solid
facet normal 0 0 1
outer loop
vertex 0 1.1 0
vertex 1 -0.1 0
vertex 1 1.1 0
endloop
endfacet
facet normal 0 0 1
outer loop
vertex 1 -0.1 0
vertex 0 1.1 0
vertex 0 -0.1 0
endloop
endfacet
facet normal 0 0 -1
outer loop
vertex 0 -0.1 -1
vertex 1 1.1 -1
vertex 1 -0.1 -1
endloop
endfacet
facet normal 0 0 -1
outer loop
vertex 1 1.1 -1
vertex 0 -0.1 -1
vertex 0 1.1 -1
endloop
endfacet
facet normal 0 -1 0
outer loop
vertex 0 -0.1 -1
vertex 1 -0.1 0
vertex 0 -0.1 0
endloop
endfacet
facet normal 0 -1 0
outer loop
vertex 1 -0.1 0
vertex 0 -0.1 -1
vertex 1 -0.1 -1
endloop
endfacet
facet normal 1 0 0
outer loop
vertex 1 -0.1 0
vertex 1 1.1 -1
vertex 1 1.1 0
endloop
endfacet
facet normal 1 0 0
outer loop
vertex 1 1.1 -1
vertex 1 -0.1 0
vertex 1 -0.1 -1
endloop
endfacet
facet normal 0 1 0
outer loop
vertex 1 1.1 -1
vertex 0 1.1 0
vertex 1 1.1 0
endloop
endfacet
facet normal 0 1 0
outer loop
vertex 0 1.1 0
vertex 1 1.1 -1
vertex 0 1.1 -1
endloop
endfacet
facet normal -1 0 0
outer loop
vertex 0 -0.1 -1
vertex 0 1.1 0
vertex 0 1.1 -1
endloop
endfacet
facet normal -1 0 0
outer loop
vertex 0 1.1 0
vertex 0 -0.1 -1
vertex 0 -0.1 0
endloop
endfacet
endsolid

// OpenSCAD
//------------------------------------------------------
// Base
// BAse
// 5@xes 15/07/2022
// Size Must be close to 1x1 !
//------------------------------------------------------

$fn=20;


//render() translate([0.5,0,0]) mirror([1,0,0]) letter("/");
render() translate([0,-0.1,-1]) cube(size = [1.0,1.2,1], center = false);
